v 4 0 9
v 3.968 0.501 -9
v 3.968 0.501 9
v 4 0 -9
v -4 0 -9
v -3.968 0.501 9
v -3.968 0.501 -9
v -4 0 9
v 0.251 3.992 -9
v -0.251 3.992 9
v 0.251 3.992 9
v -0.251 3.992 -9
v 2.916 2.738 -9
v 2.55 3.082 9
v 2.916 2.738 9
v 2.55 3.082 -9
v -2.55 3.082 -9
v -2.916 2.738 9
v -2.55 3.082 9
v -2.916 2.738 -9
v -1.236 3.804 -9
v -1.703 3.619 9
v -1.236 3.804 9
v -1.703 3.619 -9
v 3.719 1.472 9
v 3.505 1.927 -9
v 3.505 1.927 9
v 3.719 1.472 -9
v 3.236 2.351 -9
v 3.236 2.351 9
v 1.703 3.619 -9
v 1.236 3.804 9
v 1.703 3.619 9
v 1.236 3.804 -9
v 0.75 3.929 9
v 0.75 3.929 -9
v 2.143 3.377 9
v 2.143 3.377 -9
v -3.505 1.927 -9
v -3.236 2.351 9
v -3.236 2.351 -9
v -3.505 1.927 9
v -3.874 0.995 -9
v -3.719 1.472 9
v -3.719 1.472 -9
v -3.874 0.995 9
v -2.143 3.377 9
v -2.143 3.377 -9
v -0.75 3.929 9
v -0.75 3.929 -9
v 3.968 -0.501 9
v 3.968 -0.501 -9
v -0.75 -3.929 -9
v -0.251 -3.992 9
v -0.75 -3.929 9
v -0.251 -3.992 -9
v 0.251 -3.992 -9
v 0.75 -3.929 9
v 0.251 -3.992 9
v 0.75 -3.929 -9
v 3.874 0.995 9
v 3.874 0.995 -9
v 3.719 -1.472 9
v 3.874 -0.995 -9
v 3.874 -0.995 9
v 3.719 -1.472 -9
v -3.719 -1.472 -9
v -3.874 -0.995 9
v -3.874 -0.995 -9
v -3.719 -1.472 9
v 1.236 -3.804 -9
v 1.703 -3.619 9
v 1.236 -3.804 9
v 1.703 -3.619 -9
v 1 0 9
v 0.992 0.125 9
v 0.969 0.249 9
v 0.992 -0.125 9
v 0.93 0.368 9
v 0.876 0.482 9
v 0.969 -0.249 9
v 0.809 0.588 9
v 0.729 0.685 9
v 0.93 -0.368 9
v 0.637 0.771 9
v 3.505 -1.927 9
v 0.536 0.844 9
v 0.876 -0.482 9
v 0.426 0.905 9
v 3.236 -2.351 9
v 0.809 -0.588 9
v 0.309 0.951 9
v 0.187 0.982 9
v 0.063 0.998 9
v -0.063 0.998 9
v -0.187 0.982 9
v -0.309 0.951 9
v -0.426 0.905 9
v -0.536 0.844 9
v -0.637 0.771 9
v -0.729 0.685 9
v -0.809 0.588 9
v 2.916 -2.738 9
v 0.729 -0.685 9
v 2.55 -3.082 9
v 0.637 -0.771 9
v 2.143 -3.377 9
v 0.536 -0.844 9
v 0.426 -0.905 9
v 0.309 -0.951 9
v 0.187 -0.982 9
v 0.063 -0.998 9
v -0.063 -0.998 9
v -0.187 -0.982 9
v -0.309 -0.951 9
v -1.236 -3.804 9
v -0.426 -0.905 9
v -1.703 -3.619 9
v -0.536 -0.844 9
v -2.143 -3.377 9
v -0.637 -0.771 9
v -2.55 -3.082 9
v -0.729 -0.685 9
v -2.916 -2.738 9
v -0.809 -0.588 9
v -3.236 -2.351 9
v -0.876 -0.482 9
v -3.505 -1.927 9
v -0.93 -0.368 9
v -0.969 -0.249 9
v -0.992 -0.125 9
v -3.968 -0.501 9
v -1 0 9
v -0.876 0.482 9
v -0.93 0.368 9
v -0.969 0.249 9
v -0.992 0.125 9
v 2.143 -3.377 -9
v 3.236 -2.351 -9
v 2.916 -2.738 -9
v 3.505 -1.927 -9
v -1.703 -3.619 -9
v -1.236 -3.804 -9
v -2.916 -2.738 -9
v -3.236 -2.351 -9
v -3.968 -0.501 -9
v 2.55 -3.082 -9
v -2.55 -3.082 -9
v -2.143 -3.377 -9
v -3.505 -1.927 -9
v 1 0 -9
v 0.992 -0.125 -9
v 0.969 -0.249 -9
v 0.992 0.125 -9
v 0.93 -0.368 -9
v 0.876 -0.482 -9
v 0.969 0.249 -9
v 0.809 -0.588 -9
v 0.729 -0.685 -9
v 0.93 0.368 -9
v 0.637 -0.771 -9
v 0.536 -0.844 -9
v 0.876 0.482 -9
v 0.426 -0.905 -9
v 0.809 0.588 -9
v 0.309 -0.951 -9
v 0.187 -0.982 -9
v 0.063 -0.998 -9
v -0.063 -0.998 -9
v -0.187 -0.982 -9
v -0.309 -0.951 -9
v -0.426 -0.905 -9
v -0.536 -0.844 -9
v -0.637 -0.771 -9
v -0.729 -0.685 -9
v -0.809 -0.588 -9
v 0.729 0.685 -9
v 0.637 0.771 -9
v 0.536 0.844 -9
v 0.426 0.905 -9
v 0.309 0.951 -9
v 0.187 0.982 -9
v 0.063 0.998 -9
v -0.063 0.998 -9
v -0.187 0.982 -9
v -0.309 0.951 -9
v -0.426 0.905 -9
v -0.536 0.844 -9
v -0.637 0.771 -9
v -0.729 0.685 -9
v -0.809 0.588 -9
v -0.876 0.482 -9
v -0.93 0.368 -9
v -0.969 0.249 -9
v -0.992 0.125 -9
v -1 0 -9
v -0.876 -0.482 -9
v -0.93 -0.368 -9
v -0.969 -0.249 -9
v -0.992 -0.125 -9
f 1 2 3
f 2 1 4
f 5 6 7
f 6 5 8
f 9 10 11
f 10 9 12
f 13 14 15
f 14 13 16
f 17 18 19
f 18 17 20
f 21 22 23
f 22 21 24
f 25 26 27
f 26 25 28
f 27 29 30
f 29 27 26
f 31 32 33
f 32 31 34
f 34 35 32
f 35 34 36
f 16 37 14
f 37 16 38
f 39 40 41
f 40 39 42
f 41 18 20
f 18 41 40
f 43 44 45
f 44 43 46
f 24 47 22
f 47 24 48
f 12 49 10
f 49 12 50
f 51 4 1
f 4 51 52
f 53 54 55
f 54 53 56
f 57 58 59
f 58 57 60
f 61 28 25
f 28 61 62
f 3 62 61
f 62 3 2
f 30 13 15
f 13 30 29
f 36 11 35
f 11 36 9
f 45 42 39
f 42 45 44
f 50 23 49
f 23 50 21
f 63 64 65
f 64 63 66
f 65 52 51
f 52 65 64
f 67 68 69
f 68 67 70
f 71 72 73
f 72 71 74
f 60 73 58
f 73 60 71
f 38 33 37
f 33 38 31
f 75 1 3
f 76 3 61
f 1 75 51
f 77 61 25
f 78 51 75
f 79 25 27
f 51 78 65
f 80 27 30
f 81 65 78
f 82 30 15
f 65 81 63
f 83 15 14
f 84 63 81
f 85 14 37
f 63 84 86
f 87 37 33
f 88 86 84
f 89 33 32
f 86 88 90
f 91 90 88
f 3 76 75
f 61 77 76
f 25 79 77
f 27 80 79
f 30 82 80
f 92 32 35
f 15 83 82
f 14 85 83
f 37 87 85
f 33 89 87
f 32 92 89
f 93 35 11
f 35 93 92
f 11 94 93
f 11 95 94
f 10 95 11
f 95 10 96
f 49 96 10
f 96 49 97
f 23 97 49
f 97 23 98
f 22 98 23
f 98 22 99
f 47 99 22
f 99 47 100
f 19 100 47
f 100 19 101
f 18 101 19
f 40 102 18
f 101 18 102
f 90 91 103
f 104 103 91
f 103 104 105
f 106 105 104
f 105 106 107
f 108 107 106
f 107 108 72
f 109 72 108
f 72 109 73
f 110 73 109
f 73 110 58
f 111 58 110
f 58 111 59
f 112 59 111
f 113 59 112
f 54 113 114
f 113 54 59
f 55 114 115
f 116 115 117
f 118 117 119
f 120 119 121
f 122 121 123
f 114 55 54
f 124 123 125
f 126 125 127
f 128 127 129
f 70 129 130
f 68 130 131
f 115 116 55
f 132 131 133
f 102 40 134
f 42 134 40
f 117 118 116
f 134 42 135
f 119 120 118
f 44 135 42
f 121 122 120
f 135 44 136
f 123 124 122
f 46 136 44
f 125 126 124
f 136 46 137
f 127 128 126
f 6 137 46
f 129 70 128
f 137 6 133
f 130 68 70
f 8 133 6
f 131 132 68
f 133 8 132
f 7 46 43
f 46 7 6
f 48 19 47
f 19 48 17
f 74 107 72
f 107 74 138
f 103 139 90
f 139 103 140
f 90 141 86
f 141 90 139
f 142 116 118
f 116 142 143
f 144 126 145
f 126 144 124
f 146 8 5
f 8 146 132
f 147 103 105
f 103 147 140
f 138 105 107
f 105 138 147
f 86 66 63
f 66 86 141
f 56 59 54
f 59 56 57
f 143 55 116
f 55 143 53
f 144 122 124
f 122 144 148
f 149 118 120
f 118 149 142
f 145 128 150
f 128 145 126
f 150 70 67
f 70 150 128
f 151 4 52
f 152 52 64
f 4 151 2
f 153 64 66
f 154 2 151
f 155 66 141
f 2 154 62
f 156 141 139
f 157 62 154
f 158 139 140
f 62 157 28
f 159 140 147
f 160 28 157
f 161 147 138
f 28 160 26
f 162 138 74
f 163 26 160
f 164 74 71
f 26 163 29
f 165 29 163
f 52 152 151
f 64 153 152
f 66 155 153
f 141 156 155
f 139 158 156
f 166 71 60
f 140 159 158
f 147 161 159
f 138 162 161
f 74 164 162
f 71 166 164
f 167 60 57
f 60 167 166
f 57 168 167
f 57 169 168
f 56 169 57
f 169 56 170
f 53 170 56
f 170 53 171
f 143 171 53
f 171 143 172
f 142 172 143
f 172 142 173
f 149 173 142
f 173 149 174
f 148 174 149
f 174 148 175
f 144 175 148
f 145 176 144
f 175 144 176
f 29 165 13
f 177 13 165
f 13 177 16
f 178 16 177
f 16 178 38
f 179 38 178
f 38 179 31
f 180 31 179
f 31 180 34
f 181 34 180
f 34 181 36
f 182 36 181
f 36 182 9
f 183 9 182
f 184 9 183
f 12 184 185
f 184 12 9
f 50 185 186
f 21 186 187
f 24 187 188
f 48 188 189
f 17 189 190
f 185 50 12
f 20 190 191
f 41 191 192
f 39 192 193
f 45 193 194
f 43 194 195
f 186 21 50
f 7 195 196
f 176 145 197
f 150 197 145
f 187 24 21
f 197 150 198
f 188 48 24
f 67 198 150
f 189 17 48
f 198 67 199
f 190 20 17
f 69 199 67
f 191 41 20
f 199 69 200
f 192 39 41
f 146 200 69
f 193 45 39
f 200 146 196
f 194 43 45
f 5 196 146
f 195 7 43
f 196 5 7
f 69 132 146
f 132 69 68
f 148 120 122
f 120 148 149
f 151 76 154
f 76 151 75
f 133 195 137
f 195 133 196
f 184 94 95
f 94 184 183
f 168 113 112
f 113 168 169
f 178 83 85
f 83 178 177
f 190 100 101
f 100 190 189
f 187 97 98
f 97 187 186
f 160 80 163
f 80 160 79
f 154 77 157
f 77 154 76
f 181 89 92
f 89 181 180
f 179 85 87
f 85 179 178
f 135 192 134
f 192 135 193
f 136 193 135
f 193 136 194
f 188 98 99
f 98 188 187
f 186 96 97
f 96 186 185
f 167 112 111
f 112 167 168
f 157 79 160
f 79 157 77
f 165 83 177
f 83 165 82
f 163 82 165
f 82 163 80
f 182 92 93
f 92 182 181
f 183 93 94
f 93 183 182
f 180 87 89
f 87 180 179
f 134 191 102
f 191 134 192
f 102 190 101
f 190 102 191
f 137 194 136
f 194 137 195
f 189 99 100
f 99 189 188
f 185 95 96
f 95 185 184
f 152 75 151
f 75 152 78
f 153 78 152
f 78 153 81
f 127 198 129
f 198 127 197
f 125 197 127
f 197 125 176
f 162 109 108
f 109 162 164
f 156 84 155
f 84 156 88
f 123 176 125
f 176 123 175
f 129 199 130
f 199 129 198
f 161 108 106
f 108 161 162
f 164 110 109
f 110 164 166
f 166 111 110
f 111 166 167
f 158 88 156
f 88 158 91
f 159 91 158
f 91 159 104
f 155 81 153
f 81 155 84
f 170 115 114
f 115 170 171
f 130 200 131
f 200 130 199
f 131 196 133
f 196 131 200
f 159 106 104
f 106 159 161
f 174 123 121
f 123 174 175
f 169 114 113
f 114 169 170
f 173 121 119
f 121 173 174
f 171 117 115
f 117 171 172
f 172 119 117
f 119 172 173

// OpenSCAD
$fn = 50;


difference() {
	union() {
		translate(v = [0, 0, -9.0000000000]) {
			cylinder(h = 18, r = 4.0000000000);
		}
	}
	union() {
		translate(v = [0, 0, -100.0000000000]) {
			cylinder(h = 200, r = 1.0000000000);
		}
	}
}
